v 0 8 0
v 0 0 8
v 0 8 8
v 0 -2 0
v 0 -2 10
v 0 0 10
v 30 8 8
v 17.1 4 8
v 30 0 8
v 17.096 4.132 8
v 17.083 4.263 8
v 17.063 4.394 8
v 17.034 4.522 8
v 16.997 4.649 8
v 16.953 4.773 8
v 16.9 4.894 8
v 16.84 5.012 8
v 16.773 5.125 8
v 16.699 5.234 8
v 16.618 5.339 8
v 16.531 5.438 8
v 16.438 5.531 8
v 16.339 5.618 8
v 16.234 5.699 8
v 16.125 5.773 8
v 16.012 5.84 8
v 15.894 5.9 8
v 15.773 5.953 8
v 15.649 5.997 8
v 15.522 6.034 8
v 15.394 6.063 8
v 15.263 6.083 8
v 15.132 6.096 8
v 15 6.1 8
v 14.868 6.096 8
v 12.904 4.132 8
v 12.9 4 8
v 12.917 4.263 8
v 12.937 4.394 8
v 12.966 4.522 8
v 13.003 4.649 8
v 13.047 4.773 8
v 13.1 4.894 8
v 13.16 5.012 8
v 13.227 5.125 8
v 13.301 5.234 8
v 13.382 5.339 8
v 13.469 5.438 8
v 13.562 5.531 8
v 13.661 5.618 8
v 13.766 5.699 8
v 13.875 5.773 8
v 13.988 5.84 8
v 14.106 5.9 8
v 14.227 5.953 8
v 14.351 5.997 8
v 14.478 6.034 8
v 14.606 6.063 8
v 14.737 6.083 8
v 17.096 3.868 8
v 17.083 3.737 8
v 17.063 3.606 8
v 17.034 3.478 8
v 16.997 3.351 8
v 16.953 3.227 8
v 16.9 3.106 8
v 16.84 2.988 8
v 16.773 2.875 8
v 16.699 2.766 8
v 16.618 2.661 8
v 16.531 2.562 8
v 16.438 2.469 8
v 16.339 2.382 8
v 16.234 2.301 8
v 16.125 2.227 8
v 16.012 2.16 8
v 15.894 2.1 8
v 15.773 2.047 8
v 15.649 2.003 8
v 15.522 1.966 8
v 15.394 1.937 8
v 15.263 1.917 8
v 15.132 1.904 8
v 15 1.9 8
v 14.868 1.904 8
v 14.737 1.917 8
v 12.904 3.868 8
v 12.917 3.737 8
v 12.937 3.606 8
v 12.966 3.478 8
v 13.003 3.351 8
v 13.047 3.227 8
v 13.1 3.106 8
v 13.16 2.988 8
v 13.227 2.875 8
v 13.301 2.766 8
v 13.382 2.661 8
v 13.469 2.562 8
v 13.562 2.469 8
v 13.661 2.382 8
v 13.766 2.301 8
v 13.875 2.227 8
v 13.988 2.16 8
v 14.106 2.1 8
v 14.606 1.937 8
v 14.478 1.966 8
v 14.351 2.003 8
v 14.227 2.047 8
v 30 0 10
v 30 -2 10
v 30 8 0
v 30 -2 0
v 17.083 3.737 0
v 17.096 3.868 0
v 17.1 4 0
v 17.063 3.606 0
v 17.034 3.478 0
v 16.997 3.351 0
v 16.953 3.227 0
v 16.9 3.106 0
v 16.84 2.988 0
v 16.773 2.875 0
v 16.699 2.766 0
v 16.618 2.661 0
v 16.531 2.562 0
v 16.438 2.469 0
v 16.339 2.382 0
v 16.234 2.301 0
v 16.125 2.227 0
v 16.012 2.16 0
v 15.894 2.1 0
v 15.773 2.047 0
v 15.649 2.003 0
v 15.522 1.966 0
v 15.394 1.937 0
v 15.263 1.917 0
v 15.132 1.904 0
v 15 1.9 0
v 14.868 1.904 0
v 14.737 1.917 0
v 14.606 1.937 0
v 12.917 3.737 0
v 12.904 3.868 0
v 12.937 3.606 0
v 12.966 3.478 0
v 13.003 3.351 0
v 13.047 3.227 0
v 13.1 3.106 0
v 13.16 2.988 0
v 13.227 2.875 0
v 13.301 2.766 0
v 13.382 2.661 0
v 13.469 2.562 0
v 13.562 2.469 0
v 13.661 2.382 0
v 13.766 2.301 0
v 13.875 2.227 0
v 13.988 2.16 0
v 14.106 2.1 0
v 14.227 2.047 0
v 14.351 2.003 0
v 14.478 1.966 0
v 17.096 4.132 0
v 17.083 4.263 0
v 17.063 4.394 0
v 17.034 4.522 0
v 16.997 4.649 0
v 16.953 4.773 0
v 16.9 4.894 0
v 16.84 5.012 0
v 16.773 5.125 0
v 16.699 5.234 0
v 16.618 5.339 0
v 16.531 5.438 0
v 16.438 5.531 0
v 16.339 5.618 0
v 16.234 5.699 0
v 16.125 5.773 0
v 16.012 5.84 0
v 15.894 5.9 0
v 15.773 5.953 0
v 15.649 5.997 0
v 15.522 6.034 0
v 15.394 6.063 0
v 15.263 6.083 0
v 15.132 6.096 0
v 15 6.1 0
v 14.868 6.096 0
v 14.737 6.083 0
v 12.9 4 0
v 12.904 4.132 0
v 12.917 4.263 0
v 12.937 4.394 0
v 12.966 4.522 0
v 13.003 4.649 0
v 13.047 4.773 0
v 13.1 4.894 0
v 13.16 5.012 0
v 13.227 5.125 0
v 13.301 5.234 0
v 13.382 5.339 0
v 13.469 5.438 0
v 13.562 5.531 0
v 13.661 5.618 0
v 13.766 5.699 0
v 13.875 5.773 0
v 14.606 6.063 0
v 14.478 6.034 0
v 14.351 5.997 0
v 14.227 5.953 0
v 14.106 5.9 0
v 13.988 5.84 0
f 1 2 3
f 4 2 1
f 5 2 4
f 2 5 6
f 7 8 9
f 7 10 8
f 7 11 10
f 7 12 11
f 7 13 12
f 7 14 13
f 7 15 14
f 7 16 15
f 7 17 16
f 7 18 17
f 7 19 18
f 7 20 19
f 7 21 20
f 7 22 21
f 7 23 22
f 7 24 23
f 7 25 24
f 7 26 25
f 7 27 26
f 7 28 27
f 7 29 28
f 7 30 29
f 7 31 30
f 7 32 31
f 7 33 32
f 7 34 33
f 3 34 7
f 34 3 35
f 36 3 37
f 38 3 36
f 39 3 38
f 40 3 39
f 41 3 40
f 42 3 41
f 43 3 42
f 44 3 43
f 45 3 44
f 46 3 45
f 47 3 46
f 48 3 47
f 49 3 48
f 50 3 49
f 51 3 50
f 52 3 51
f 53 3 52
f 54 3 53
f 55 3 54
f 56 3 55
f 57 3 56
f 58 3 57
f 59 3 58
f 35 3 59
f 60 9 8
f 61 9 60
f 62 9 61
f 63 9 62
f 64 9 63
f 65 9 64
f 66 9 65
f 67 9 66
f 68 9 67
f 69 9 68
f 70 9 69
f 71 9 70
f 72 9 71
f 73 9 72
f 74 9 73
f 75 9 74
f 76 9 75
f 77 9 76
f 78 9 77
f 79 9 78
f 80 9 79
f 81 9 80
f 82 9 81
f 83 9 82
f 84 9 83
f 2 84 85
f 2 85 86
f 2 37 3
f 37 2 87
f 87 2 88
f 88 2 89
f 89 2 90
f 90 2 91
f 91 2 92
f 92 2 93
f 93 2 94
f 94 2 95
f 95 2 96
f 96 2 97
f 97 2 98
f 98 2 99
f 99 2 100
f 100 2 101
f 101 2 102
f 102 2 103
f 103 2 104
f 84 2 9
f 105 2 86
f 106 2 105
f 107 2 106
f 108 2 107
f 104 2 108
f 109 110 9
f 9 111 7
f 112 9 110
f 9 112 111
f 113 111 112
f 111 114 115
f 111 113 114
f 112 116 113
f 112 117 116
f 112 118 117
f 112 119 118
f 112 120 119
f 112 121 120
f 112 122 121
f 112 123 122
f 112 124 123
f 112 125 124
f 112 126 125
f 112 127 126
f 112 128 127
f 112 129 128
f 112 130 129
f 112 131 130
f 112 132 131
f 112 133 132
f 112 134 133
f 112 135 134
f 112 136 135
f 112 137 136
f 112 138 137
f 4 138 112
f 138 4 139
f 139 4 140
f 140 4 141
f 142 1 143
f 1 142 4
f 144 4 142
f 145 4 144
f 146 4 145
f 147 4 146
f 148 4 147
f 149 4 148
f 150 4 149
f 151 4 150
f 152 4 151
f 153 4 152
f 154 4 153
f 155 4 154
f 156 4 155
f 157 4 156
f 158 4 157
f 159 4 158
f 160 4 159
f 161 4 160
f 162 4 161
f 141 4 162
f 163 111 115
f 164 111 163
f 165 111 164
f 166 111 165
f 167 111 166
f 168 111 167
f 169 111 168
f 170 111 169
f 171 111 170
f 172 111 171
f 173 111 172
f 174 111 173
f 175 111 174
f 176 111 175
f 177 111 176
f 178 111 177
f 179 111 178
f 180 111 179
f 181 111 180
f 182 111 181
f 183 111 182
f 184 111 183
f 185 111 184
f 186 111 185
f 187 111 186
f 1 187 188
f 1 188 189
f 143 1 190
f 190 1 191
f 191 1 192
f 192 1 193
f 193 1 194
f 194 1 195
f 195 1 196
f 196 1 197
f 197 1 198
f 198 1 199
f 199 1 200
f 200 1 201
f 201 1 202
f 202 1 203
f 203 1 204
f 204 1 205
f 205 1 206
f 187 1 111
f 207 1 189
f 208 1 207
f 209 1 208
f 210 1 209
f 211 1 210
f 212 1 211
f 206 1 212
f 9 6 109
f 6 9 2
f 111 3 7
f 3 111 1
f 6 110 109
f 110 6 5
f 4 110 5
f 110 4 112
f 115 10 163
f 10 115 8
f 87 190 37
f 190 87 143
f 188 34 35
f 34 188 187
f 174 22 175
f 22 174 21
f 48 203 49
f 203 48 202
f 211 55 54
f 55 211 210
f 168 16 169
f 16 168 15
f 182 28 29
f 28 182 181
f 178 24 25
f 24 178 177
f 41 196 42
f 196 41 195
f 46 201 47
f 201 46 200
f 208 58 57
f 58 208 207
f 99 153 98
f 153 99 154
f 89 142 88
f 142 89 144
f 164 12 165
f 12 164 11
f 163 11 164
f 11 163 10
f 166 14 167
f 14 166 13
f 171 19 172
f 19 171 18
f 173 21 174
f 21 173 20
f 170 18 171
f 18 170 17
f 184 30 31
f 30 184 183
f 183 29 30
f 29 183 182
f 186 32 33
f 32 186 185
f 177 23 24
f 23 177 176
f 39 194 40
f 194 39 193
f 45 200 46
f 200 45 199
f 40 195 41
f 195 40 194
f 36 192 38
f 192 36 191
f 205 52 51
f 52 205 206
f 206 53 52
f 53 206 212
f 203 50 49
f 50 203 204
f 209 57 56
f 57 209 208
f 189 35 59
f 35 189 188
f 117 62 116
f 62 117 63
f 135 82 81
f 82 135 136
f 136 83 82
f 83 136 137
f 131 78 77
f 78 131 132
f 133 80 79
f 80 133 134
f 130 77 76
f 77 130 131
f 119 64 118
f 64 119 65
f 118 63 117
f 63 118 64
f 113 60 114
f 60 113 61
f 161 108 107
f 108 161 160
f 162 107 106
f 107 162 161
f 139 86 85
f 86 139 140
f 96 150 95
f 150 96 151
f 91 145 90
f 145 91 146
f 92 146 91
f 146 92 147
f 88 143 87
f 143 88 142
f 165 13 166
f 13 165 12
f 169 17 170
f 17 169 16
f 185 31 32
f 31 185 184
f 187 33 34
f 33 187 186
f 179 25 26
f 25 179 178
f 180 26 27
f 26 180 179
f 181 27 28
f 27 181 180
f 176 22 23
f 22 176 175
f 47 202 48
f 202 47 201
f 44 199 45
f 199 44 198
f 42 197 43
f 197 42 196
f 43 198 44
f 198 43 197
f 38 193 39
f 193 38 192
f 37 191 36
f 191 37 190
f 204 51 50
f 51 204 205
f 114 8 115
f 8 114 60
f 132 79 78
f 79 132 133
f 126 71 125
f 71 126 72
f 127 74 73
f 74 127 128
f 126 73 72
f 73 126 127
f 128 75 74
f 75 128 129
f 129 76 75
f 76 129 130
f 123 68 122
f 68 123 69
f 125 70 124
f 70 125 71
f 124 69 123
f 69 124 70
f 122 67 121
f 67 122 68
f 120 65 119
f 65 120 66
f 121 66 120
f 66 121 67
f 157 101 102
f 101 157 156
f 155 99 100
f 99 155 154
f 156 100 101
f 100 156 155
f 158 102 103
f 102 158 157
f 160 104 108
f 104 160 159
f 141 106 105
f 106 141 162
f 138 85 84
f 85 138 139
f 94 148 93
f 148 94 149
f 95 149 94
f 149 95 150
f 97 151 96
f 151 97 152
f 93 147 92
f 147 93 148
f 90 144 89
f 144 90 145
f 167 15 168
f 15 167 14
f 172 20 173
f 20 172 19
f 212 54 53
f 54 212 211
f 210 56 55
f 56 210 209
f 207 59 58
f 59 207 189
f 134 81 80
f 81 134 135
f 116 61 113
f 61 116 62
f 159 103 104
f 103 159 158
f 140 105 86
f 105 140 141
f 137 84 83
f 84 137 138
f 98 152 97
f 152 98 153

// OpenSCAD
body_hight = 8; //mm
body_len = 30; //mm
body_width = 8; //mm

hole_dia = 4.2; //mm
hole_pos_x = 15; //mm
hole_pos_y = 4; //mm

border_hight = 2; //mm
border_width = 2; //mm

$fn = 100;

difference() {
    union() {
        translate([0, 0, 0])
            cube([body_len, body_width, body_hight]);
        translate([0, -border_width, 0])
            cube([body_len, border_width, border_hight + body_hight]);
    }
    translate([hole_pos_x, hole_pos_y, 0])
        cylinder(body_hight, r = hole_dia / 2);
}
